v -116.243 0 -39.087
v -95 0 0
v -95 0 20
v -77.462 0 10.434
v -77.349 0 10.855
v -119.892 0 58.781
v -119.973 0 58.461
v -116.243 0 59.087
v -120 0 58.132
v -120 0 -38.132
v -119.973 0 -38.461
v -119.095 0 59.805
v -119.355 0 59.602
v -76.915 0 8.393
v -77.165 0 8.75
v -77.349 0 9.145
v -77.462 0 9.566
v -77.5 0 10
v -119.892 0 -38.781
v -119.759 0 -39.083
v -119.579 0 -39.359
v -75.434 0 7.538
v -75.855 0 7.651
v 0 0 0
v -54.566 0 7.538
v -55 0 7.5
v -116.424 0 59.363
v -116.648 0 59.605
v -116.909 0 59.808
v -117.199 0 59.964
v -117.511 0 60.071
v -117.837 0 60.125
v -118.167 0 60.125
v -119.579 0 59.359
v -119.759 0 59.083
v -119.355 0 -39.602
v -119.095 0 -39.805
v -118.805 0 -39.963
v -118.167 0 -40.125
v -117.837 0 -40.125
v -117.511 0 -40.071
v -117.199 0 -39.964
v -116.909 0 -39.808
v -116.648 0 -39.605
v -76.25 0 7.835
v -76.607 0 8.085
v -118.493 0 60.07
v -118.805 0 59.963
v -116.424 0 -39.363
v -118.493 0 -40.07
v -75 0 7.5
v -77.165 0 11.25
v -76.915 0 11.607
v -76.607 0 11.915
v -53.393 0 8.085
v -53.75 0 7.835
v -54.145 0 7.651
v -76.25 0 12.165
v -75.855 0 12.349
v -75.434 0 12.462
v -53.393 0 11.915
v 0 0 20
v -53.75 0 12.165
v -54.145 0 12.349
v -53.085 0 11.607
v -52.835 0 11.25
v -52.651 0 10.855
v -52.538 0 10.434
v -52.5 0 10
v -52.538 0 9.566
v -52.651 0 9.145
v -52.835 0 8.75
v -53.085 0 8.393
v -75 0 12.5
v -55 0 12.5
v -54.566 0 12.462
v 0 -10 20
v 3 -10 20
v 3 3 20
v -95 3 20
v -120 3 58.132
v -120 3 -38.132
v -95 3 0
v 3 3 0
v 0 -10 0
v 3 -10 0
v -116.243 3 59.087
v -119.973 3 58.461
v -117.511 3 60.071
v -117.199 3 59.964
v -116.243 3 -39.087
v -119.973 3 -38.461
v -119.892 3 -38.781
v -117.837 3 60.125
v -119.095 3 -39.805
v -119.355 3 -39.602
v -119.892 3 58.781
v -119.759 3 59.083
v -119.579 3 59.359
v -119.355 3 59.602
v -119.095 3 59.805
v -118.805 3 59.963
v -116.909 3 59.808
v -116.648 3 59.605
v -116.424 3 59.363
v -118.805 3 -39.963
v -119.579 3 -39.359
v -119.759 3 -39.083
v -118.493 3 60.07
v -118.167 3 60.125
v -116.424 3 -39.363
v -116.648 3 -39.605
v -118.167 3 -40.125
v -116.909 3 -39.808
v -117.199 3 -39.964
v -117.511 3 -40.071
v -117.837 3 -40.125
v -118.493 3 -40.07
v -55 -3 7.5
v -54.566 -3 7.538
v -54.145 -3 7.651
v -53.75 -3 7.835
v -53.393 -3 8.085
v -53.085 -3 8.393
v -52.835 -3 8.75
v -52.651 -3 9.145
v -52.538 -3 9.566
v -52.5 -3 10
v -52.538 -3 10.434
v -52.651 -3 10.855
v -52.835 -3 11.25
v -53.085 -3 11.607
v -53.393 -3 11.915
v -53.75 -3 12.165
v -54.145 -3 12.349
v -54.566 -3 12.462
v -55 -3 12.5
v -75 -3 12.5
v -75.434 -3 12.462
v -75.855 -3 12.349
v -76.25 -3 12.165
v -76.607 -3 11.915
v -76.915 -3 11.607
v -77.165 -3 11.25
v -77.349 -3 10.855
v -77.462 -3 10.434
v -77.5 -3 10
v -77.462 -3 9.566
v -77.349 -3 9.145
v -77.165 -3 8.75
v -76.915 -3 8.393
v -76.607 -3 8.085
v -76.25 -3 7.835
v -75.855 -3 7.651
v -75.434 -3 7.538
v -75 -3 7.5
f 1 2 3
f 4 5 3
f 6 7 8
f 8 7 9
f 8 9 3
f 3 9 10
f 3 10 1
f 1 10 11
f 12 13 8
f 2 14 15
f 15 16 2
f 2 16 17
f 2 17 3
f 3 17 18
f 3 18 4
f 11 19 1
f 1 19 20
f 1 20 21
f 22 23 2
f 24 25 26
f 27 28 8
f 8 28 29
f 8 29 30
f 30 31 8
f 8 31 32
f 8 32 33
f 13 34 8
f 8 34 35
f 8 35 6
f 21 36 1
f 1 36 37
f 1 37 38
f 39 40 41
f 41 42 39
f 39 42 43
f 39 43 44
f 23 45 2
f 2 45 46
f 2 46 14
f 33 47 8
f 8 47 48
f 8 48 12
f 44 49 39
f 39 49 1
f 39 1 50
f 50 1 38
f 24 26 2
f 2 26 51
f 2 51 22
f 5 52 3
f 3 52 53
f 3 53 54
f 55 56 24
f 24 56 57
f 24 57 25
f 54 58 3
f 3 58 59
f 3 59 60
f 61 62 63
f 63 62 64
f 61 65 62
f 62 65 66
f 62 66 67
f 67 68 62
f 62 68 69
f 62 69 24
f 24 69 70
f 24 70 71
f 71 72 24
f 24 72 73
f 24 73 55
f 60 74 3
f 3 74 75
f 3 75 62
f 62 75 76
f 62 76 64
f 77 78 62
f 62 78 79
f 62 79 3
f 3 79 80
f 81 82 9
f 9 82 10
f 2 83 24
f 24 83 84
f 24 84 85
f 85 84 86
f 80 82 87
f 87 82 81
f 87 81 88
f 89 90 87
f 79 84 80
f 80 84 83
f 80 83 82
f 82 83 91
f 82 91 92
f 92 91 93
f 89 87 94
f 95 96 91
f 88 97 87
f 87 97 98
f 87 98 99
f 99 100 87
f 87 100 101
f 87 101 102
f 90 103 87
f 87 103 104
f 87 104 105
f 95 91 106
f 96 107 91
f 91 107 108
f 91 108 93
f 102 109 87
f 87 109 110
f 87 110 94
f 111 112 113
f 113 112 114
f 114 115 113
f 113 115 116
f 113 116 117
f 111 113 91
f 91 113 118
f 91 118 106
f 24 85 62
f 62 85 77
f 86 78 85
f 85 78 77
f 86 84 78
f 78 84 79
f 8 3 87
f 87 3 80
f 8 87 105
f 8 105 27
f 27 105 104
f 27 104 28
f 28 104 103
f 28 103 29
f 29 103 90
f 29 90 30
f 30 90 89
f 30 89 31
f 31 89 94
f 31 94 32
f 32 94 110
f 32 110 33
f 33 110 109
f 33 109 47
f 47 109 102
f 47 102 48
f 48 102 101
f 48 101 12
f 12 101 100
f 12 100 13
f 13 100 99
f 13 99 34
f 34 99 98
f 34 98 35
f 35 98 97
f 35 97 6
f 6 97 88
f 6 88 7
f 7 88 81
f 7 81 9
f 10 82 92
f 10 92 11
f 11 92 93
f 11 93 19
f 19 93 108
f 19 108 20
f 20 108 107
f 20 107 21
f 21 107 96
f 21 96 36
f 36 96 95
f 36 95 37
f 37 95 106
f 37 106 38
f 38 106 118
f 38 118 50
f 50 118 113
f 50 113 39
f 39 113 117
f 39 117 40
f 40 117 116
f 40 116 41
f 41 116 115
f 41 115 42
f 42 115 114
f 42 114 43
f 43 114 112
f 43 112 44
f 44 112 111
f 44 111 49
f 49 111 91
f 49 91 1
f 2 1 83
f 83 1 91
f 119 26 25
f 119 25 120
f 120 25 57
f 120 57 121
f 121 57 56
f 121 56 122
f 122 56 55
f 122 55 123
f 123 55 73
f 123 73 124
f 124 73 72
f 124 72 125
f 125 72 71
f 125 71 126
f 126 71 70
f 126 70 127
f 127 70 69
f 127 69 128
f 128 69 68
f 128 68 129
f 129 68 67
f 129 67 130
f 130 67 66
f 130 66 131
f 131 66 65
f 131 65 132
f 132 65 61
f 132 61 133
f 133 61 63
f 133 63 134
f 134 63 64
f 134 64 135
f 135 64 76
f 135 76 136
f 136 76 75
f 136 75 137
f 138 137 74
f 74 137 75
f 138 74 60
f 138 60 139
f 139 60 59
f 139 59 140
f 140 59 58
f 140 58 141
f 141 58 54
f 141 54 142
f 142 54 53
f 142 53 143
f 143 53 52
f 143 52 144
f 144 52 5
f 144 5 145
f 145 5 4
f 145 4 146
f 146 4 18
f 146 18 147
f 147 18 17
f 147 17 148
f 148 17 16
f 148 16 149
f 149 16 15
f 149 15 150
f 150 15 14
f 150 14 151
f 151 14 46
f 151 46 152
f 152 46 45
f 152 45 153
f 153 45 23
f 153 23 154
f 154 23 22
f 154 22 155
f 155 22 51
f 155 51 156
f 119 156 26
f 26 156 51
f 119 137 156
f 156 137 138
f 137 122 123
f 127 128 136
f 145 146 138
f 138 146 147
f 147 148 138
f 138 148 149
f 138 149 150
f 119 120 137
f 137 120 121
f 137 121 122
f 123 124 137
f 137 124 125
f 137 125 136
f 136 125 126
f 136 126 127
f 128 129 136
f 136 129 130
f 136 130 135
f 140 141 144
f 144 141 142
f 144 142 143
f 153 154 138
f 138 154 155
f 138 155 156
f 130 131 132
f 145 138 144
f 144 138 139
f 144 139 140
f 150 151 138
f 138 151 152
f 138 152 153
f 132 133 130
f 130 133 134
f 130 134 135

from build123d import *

# Parameters (mm, degrees)
SKETCH1_W           = 120
SKETCH1_H           = 20
BOSS_EXTRUDE1_DEPTH = 3
SKETCH2_W           = 20
SKETCH2_H           = 13
BOSS_EXTRUDE2_DEPTH = 3
BOSS_EXTRUDE3_DEPTH = 3
BOSS_EXTRUDE4_DEPTH = 3


with BuildPart() as part:
    # Sketch1 → Boss-Extrude1 (new body)
    with BuildSketch(Plane(origin=(0, 0, 0), x_dir=(1, 0, 0), z_dir=(0, 1, 0))):
        with Locations((-60, -10)):
            Rectangle(SKETCH1_W, SKETCH1_H)
    extrude(amount=BOSS_EXTRUDE1_DEPTH)

    # Sketch2 → Boss-Extrude2 (add)
    with BuildSketch(Plane(origin=(0, 0, 0), x_dir=(0, 0, -1), z_dir=(1, 0, 0))):
        with Locations((-10, -3.5)):
            Rectangle(SKETCH2_W, SKETCH2_H)
    extrude(amount=BOSS_EXTRUDE2_DEPTH)

    # Sketch3 → Boss-Extrude3 (add)
    with BuildSketch(Plane(origin=(0, 3, 0), x_dir=(1, 0, 0), z_dir=(0, 1, 0))):
        with BuildLine():
            Line((-120, -20), (-120, -58.131635164))
            ThreePointArc((-120, -58.131635164), (-118.492697657, -60.069997622), (-116.242750981, -59.086661805))
            Line((-116.242750981, -59.086661805), (-95, -20))
            Line((-95, -20), (-120, -20))
        make_face()
        with BuildLine():
            Line((-120, 0), (-120, 38.131635164))
            ThreePointArc((-120, 38.131635164), (-118.492697657, 40.069997622), (-116.242750981, 39.086661805))
            Line((-116.242750981, 39.086661805), (-95, 0))
            Line((-95, 0), (-120, 0))
        make_face()
    extrude(amount=-BOSS_EXTRUDE3_DEPTH)

    # Sketch5 → Boss-Extrude4 (add)
    with BuildSketch(Plane.XZ):
        with BuildLine():
            Line((-55, 7.5), (-75, 7.5))
            ThreePointArc((-75, 7.5), (-77.5, 10), (-75, 12.5))
            Line((-75, 12.5), (-55, 12.5))
            ThreePointArc((-55, 12.5), (-52.5, 10), (-55, 7.5))
        make_face()
    extrude(amount=BOSS_EXTRUDE4_DEPTH)


solid = part.part
